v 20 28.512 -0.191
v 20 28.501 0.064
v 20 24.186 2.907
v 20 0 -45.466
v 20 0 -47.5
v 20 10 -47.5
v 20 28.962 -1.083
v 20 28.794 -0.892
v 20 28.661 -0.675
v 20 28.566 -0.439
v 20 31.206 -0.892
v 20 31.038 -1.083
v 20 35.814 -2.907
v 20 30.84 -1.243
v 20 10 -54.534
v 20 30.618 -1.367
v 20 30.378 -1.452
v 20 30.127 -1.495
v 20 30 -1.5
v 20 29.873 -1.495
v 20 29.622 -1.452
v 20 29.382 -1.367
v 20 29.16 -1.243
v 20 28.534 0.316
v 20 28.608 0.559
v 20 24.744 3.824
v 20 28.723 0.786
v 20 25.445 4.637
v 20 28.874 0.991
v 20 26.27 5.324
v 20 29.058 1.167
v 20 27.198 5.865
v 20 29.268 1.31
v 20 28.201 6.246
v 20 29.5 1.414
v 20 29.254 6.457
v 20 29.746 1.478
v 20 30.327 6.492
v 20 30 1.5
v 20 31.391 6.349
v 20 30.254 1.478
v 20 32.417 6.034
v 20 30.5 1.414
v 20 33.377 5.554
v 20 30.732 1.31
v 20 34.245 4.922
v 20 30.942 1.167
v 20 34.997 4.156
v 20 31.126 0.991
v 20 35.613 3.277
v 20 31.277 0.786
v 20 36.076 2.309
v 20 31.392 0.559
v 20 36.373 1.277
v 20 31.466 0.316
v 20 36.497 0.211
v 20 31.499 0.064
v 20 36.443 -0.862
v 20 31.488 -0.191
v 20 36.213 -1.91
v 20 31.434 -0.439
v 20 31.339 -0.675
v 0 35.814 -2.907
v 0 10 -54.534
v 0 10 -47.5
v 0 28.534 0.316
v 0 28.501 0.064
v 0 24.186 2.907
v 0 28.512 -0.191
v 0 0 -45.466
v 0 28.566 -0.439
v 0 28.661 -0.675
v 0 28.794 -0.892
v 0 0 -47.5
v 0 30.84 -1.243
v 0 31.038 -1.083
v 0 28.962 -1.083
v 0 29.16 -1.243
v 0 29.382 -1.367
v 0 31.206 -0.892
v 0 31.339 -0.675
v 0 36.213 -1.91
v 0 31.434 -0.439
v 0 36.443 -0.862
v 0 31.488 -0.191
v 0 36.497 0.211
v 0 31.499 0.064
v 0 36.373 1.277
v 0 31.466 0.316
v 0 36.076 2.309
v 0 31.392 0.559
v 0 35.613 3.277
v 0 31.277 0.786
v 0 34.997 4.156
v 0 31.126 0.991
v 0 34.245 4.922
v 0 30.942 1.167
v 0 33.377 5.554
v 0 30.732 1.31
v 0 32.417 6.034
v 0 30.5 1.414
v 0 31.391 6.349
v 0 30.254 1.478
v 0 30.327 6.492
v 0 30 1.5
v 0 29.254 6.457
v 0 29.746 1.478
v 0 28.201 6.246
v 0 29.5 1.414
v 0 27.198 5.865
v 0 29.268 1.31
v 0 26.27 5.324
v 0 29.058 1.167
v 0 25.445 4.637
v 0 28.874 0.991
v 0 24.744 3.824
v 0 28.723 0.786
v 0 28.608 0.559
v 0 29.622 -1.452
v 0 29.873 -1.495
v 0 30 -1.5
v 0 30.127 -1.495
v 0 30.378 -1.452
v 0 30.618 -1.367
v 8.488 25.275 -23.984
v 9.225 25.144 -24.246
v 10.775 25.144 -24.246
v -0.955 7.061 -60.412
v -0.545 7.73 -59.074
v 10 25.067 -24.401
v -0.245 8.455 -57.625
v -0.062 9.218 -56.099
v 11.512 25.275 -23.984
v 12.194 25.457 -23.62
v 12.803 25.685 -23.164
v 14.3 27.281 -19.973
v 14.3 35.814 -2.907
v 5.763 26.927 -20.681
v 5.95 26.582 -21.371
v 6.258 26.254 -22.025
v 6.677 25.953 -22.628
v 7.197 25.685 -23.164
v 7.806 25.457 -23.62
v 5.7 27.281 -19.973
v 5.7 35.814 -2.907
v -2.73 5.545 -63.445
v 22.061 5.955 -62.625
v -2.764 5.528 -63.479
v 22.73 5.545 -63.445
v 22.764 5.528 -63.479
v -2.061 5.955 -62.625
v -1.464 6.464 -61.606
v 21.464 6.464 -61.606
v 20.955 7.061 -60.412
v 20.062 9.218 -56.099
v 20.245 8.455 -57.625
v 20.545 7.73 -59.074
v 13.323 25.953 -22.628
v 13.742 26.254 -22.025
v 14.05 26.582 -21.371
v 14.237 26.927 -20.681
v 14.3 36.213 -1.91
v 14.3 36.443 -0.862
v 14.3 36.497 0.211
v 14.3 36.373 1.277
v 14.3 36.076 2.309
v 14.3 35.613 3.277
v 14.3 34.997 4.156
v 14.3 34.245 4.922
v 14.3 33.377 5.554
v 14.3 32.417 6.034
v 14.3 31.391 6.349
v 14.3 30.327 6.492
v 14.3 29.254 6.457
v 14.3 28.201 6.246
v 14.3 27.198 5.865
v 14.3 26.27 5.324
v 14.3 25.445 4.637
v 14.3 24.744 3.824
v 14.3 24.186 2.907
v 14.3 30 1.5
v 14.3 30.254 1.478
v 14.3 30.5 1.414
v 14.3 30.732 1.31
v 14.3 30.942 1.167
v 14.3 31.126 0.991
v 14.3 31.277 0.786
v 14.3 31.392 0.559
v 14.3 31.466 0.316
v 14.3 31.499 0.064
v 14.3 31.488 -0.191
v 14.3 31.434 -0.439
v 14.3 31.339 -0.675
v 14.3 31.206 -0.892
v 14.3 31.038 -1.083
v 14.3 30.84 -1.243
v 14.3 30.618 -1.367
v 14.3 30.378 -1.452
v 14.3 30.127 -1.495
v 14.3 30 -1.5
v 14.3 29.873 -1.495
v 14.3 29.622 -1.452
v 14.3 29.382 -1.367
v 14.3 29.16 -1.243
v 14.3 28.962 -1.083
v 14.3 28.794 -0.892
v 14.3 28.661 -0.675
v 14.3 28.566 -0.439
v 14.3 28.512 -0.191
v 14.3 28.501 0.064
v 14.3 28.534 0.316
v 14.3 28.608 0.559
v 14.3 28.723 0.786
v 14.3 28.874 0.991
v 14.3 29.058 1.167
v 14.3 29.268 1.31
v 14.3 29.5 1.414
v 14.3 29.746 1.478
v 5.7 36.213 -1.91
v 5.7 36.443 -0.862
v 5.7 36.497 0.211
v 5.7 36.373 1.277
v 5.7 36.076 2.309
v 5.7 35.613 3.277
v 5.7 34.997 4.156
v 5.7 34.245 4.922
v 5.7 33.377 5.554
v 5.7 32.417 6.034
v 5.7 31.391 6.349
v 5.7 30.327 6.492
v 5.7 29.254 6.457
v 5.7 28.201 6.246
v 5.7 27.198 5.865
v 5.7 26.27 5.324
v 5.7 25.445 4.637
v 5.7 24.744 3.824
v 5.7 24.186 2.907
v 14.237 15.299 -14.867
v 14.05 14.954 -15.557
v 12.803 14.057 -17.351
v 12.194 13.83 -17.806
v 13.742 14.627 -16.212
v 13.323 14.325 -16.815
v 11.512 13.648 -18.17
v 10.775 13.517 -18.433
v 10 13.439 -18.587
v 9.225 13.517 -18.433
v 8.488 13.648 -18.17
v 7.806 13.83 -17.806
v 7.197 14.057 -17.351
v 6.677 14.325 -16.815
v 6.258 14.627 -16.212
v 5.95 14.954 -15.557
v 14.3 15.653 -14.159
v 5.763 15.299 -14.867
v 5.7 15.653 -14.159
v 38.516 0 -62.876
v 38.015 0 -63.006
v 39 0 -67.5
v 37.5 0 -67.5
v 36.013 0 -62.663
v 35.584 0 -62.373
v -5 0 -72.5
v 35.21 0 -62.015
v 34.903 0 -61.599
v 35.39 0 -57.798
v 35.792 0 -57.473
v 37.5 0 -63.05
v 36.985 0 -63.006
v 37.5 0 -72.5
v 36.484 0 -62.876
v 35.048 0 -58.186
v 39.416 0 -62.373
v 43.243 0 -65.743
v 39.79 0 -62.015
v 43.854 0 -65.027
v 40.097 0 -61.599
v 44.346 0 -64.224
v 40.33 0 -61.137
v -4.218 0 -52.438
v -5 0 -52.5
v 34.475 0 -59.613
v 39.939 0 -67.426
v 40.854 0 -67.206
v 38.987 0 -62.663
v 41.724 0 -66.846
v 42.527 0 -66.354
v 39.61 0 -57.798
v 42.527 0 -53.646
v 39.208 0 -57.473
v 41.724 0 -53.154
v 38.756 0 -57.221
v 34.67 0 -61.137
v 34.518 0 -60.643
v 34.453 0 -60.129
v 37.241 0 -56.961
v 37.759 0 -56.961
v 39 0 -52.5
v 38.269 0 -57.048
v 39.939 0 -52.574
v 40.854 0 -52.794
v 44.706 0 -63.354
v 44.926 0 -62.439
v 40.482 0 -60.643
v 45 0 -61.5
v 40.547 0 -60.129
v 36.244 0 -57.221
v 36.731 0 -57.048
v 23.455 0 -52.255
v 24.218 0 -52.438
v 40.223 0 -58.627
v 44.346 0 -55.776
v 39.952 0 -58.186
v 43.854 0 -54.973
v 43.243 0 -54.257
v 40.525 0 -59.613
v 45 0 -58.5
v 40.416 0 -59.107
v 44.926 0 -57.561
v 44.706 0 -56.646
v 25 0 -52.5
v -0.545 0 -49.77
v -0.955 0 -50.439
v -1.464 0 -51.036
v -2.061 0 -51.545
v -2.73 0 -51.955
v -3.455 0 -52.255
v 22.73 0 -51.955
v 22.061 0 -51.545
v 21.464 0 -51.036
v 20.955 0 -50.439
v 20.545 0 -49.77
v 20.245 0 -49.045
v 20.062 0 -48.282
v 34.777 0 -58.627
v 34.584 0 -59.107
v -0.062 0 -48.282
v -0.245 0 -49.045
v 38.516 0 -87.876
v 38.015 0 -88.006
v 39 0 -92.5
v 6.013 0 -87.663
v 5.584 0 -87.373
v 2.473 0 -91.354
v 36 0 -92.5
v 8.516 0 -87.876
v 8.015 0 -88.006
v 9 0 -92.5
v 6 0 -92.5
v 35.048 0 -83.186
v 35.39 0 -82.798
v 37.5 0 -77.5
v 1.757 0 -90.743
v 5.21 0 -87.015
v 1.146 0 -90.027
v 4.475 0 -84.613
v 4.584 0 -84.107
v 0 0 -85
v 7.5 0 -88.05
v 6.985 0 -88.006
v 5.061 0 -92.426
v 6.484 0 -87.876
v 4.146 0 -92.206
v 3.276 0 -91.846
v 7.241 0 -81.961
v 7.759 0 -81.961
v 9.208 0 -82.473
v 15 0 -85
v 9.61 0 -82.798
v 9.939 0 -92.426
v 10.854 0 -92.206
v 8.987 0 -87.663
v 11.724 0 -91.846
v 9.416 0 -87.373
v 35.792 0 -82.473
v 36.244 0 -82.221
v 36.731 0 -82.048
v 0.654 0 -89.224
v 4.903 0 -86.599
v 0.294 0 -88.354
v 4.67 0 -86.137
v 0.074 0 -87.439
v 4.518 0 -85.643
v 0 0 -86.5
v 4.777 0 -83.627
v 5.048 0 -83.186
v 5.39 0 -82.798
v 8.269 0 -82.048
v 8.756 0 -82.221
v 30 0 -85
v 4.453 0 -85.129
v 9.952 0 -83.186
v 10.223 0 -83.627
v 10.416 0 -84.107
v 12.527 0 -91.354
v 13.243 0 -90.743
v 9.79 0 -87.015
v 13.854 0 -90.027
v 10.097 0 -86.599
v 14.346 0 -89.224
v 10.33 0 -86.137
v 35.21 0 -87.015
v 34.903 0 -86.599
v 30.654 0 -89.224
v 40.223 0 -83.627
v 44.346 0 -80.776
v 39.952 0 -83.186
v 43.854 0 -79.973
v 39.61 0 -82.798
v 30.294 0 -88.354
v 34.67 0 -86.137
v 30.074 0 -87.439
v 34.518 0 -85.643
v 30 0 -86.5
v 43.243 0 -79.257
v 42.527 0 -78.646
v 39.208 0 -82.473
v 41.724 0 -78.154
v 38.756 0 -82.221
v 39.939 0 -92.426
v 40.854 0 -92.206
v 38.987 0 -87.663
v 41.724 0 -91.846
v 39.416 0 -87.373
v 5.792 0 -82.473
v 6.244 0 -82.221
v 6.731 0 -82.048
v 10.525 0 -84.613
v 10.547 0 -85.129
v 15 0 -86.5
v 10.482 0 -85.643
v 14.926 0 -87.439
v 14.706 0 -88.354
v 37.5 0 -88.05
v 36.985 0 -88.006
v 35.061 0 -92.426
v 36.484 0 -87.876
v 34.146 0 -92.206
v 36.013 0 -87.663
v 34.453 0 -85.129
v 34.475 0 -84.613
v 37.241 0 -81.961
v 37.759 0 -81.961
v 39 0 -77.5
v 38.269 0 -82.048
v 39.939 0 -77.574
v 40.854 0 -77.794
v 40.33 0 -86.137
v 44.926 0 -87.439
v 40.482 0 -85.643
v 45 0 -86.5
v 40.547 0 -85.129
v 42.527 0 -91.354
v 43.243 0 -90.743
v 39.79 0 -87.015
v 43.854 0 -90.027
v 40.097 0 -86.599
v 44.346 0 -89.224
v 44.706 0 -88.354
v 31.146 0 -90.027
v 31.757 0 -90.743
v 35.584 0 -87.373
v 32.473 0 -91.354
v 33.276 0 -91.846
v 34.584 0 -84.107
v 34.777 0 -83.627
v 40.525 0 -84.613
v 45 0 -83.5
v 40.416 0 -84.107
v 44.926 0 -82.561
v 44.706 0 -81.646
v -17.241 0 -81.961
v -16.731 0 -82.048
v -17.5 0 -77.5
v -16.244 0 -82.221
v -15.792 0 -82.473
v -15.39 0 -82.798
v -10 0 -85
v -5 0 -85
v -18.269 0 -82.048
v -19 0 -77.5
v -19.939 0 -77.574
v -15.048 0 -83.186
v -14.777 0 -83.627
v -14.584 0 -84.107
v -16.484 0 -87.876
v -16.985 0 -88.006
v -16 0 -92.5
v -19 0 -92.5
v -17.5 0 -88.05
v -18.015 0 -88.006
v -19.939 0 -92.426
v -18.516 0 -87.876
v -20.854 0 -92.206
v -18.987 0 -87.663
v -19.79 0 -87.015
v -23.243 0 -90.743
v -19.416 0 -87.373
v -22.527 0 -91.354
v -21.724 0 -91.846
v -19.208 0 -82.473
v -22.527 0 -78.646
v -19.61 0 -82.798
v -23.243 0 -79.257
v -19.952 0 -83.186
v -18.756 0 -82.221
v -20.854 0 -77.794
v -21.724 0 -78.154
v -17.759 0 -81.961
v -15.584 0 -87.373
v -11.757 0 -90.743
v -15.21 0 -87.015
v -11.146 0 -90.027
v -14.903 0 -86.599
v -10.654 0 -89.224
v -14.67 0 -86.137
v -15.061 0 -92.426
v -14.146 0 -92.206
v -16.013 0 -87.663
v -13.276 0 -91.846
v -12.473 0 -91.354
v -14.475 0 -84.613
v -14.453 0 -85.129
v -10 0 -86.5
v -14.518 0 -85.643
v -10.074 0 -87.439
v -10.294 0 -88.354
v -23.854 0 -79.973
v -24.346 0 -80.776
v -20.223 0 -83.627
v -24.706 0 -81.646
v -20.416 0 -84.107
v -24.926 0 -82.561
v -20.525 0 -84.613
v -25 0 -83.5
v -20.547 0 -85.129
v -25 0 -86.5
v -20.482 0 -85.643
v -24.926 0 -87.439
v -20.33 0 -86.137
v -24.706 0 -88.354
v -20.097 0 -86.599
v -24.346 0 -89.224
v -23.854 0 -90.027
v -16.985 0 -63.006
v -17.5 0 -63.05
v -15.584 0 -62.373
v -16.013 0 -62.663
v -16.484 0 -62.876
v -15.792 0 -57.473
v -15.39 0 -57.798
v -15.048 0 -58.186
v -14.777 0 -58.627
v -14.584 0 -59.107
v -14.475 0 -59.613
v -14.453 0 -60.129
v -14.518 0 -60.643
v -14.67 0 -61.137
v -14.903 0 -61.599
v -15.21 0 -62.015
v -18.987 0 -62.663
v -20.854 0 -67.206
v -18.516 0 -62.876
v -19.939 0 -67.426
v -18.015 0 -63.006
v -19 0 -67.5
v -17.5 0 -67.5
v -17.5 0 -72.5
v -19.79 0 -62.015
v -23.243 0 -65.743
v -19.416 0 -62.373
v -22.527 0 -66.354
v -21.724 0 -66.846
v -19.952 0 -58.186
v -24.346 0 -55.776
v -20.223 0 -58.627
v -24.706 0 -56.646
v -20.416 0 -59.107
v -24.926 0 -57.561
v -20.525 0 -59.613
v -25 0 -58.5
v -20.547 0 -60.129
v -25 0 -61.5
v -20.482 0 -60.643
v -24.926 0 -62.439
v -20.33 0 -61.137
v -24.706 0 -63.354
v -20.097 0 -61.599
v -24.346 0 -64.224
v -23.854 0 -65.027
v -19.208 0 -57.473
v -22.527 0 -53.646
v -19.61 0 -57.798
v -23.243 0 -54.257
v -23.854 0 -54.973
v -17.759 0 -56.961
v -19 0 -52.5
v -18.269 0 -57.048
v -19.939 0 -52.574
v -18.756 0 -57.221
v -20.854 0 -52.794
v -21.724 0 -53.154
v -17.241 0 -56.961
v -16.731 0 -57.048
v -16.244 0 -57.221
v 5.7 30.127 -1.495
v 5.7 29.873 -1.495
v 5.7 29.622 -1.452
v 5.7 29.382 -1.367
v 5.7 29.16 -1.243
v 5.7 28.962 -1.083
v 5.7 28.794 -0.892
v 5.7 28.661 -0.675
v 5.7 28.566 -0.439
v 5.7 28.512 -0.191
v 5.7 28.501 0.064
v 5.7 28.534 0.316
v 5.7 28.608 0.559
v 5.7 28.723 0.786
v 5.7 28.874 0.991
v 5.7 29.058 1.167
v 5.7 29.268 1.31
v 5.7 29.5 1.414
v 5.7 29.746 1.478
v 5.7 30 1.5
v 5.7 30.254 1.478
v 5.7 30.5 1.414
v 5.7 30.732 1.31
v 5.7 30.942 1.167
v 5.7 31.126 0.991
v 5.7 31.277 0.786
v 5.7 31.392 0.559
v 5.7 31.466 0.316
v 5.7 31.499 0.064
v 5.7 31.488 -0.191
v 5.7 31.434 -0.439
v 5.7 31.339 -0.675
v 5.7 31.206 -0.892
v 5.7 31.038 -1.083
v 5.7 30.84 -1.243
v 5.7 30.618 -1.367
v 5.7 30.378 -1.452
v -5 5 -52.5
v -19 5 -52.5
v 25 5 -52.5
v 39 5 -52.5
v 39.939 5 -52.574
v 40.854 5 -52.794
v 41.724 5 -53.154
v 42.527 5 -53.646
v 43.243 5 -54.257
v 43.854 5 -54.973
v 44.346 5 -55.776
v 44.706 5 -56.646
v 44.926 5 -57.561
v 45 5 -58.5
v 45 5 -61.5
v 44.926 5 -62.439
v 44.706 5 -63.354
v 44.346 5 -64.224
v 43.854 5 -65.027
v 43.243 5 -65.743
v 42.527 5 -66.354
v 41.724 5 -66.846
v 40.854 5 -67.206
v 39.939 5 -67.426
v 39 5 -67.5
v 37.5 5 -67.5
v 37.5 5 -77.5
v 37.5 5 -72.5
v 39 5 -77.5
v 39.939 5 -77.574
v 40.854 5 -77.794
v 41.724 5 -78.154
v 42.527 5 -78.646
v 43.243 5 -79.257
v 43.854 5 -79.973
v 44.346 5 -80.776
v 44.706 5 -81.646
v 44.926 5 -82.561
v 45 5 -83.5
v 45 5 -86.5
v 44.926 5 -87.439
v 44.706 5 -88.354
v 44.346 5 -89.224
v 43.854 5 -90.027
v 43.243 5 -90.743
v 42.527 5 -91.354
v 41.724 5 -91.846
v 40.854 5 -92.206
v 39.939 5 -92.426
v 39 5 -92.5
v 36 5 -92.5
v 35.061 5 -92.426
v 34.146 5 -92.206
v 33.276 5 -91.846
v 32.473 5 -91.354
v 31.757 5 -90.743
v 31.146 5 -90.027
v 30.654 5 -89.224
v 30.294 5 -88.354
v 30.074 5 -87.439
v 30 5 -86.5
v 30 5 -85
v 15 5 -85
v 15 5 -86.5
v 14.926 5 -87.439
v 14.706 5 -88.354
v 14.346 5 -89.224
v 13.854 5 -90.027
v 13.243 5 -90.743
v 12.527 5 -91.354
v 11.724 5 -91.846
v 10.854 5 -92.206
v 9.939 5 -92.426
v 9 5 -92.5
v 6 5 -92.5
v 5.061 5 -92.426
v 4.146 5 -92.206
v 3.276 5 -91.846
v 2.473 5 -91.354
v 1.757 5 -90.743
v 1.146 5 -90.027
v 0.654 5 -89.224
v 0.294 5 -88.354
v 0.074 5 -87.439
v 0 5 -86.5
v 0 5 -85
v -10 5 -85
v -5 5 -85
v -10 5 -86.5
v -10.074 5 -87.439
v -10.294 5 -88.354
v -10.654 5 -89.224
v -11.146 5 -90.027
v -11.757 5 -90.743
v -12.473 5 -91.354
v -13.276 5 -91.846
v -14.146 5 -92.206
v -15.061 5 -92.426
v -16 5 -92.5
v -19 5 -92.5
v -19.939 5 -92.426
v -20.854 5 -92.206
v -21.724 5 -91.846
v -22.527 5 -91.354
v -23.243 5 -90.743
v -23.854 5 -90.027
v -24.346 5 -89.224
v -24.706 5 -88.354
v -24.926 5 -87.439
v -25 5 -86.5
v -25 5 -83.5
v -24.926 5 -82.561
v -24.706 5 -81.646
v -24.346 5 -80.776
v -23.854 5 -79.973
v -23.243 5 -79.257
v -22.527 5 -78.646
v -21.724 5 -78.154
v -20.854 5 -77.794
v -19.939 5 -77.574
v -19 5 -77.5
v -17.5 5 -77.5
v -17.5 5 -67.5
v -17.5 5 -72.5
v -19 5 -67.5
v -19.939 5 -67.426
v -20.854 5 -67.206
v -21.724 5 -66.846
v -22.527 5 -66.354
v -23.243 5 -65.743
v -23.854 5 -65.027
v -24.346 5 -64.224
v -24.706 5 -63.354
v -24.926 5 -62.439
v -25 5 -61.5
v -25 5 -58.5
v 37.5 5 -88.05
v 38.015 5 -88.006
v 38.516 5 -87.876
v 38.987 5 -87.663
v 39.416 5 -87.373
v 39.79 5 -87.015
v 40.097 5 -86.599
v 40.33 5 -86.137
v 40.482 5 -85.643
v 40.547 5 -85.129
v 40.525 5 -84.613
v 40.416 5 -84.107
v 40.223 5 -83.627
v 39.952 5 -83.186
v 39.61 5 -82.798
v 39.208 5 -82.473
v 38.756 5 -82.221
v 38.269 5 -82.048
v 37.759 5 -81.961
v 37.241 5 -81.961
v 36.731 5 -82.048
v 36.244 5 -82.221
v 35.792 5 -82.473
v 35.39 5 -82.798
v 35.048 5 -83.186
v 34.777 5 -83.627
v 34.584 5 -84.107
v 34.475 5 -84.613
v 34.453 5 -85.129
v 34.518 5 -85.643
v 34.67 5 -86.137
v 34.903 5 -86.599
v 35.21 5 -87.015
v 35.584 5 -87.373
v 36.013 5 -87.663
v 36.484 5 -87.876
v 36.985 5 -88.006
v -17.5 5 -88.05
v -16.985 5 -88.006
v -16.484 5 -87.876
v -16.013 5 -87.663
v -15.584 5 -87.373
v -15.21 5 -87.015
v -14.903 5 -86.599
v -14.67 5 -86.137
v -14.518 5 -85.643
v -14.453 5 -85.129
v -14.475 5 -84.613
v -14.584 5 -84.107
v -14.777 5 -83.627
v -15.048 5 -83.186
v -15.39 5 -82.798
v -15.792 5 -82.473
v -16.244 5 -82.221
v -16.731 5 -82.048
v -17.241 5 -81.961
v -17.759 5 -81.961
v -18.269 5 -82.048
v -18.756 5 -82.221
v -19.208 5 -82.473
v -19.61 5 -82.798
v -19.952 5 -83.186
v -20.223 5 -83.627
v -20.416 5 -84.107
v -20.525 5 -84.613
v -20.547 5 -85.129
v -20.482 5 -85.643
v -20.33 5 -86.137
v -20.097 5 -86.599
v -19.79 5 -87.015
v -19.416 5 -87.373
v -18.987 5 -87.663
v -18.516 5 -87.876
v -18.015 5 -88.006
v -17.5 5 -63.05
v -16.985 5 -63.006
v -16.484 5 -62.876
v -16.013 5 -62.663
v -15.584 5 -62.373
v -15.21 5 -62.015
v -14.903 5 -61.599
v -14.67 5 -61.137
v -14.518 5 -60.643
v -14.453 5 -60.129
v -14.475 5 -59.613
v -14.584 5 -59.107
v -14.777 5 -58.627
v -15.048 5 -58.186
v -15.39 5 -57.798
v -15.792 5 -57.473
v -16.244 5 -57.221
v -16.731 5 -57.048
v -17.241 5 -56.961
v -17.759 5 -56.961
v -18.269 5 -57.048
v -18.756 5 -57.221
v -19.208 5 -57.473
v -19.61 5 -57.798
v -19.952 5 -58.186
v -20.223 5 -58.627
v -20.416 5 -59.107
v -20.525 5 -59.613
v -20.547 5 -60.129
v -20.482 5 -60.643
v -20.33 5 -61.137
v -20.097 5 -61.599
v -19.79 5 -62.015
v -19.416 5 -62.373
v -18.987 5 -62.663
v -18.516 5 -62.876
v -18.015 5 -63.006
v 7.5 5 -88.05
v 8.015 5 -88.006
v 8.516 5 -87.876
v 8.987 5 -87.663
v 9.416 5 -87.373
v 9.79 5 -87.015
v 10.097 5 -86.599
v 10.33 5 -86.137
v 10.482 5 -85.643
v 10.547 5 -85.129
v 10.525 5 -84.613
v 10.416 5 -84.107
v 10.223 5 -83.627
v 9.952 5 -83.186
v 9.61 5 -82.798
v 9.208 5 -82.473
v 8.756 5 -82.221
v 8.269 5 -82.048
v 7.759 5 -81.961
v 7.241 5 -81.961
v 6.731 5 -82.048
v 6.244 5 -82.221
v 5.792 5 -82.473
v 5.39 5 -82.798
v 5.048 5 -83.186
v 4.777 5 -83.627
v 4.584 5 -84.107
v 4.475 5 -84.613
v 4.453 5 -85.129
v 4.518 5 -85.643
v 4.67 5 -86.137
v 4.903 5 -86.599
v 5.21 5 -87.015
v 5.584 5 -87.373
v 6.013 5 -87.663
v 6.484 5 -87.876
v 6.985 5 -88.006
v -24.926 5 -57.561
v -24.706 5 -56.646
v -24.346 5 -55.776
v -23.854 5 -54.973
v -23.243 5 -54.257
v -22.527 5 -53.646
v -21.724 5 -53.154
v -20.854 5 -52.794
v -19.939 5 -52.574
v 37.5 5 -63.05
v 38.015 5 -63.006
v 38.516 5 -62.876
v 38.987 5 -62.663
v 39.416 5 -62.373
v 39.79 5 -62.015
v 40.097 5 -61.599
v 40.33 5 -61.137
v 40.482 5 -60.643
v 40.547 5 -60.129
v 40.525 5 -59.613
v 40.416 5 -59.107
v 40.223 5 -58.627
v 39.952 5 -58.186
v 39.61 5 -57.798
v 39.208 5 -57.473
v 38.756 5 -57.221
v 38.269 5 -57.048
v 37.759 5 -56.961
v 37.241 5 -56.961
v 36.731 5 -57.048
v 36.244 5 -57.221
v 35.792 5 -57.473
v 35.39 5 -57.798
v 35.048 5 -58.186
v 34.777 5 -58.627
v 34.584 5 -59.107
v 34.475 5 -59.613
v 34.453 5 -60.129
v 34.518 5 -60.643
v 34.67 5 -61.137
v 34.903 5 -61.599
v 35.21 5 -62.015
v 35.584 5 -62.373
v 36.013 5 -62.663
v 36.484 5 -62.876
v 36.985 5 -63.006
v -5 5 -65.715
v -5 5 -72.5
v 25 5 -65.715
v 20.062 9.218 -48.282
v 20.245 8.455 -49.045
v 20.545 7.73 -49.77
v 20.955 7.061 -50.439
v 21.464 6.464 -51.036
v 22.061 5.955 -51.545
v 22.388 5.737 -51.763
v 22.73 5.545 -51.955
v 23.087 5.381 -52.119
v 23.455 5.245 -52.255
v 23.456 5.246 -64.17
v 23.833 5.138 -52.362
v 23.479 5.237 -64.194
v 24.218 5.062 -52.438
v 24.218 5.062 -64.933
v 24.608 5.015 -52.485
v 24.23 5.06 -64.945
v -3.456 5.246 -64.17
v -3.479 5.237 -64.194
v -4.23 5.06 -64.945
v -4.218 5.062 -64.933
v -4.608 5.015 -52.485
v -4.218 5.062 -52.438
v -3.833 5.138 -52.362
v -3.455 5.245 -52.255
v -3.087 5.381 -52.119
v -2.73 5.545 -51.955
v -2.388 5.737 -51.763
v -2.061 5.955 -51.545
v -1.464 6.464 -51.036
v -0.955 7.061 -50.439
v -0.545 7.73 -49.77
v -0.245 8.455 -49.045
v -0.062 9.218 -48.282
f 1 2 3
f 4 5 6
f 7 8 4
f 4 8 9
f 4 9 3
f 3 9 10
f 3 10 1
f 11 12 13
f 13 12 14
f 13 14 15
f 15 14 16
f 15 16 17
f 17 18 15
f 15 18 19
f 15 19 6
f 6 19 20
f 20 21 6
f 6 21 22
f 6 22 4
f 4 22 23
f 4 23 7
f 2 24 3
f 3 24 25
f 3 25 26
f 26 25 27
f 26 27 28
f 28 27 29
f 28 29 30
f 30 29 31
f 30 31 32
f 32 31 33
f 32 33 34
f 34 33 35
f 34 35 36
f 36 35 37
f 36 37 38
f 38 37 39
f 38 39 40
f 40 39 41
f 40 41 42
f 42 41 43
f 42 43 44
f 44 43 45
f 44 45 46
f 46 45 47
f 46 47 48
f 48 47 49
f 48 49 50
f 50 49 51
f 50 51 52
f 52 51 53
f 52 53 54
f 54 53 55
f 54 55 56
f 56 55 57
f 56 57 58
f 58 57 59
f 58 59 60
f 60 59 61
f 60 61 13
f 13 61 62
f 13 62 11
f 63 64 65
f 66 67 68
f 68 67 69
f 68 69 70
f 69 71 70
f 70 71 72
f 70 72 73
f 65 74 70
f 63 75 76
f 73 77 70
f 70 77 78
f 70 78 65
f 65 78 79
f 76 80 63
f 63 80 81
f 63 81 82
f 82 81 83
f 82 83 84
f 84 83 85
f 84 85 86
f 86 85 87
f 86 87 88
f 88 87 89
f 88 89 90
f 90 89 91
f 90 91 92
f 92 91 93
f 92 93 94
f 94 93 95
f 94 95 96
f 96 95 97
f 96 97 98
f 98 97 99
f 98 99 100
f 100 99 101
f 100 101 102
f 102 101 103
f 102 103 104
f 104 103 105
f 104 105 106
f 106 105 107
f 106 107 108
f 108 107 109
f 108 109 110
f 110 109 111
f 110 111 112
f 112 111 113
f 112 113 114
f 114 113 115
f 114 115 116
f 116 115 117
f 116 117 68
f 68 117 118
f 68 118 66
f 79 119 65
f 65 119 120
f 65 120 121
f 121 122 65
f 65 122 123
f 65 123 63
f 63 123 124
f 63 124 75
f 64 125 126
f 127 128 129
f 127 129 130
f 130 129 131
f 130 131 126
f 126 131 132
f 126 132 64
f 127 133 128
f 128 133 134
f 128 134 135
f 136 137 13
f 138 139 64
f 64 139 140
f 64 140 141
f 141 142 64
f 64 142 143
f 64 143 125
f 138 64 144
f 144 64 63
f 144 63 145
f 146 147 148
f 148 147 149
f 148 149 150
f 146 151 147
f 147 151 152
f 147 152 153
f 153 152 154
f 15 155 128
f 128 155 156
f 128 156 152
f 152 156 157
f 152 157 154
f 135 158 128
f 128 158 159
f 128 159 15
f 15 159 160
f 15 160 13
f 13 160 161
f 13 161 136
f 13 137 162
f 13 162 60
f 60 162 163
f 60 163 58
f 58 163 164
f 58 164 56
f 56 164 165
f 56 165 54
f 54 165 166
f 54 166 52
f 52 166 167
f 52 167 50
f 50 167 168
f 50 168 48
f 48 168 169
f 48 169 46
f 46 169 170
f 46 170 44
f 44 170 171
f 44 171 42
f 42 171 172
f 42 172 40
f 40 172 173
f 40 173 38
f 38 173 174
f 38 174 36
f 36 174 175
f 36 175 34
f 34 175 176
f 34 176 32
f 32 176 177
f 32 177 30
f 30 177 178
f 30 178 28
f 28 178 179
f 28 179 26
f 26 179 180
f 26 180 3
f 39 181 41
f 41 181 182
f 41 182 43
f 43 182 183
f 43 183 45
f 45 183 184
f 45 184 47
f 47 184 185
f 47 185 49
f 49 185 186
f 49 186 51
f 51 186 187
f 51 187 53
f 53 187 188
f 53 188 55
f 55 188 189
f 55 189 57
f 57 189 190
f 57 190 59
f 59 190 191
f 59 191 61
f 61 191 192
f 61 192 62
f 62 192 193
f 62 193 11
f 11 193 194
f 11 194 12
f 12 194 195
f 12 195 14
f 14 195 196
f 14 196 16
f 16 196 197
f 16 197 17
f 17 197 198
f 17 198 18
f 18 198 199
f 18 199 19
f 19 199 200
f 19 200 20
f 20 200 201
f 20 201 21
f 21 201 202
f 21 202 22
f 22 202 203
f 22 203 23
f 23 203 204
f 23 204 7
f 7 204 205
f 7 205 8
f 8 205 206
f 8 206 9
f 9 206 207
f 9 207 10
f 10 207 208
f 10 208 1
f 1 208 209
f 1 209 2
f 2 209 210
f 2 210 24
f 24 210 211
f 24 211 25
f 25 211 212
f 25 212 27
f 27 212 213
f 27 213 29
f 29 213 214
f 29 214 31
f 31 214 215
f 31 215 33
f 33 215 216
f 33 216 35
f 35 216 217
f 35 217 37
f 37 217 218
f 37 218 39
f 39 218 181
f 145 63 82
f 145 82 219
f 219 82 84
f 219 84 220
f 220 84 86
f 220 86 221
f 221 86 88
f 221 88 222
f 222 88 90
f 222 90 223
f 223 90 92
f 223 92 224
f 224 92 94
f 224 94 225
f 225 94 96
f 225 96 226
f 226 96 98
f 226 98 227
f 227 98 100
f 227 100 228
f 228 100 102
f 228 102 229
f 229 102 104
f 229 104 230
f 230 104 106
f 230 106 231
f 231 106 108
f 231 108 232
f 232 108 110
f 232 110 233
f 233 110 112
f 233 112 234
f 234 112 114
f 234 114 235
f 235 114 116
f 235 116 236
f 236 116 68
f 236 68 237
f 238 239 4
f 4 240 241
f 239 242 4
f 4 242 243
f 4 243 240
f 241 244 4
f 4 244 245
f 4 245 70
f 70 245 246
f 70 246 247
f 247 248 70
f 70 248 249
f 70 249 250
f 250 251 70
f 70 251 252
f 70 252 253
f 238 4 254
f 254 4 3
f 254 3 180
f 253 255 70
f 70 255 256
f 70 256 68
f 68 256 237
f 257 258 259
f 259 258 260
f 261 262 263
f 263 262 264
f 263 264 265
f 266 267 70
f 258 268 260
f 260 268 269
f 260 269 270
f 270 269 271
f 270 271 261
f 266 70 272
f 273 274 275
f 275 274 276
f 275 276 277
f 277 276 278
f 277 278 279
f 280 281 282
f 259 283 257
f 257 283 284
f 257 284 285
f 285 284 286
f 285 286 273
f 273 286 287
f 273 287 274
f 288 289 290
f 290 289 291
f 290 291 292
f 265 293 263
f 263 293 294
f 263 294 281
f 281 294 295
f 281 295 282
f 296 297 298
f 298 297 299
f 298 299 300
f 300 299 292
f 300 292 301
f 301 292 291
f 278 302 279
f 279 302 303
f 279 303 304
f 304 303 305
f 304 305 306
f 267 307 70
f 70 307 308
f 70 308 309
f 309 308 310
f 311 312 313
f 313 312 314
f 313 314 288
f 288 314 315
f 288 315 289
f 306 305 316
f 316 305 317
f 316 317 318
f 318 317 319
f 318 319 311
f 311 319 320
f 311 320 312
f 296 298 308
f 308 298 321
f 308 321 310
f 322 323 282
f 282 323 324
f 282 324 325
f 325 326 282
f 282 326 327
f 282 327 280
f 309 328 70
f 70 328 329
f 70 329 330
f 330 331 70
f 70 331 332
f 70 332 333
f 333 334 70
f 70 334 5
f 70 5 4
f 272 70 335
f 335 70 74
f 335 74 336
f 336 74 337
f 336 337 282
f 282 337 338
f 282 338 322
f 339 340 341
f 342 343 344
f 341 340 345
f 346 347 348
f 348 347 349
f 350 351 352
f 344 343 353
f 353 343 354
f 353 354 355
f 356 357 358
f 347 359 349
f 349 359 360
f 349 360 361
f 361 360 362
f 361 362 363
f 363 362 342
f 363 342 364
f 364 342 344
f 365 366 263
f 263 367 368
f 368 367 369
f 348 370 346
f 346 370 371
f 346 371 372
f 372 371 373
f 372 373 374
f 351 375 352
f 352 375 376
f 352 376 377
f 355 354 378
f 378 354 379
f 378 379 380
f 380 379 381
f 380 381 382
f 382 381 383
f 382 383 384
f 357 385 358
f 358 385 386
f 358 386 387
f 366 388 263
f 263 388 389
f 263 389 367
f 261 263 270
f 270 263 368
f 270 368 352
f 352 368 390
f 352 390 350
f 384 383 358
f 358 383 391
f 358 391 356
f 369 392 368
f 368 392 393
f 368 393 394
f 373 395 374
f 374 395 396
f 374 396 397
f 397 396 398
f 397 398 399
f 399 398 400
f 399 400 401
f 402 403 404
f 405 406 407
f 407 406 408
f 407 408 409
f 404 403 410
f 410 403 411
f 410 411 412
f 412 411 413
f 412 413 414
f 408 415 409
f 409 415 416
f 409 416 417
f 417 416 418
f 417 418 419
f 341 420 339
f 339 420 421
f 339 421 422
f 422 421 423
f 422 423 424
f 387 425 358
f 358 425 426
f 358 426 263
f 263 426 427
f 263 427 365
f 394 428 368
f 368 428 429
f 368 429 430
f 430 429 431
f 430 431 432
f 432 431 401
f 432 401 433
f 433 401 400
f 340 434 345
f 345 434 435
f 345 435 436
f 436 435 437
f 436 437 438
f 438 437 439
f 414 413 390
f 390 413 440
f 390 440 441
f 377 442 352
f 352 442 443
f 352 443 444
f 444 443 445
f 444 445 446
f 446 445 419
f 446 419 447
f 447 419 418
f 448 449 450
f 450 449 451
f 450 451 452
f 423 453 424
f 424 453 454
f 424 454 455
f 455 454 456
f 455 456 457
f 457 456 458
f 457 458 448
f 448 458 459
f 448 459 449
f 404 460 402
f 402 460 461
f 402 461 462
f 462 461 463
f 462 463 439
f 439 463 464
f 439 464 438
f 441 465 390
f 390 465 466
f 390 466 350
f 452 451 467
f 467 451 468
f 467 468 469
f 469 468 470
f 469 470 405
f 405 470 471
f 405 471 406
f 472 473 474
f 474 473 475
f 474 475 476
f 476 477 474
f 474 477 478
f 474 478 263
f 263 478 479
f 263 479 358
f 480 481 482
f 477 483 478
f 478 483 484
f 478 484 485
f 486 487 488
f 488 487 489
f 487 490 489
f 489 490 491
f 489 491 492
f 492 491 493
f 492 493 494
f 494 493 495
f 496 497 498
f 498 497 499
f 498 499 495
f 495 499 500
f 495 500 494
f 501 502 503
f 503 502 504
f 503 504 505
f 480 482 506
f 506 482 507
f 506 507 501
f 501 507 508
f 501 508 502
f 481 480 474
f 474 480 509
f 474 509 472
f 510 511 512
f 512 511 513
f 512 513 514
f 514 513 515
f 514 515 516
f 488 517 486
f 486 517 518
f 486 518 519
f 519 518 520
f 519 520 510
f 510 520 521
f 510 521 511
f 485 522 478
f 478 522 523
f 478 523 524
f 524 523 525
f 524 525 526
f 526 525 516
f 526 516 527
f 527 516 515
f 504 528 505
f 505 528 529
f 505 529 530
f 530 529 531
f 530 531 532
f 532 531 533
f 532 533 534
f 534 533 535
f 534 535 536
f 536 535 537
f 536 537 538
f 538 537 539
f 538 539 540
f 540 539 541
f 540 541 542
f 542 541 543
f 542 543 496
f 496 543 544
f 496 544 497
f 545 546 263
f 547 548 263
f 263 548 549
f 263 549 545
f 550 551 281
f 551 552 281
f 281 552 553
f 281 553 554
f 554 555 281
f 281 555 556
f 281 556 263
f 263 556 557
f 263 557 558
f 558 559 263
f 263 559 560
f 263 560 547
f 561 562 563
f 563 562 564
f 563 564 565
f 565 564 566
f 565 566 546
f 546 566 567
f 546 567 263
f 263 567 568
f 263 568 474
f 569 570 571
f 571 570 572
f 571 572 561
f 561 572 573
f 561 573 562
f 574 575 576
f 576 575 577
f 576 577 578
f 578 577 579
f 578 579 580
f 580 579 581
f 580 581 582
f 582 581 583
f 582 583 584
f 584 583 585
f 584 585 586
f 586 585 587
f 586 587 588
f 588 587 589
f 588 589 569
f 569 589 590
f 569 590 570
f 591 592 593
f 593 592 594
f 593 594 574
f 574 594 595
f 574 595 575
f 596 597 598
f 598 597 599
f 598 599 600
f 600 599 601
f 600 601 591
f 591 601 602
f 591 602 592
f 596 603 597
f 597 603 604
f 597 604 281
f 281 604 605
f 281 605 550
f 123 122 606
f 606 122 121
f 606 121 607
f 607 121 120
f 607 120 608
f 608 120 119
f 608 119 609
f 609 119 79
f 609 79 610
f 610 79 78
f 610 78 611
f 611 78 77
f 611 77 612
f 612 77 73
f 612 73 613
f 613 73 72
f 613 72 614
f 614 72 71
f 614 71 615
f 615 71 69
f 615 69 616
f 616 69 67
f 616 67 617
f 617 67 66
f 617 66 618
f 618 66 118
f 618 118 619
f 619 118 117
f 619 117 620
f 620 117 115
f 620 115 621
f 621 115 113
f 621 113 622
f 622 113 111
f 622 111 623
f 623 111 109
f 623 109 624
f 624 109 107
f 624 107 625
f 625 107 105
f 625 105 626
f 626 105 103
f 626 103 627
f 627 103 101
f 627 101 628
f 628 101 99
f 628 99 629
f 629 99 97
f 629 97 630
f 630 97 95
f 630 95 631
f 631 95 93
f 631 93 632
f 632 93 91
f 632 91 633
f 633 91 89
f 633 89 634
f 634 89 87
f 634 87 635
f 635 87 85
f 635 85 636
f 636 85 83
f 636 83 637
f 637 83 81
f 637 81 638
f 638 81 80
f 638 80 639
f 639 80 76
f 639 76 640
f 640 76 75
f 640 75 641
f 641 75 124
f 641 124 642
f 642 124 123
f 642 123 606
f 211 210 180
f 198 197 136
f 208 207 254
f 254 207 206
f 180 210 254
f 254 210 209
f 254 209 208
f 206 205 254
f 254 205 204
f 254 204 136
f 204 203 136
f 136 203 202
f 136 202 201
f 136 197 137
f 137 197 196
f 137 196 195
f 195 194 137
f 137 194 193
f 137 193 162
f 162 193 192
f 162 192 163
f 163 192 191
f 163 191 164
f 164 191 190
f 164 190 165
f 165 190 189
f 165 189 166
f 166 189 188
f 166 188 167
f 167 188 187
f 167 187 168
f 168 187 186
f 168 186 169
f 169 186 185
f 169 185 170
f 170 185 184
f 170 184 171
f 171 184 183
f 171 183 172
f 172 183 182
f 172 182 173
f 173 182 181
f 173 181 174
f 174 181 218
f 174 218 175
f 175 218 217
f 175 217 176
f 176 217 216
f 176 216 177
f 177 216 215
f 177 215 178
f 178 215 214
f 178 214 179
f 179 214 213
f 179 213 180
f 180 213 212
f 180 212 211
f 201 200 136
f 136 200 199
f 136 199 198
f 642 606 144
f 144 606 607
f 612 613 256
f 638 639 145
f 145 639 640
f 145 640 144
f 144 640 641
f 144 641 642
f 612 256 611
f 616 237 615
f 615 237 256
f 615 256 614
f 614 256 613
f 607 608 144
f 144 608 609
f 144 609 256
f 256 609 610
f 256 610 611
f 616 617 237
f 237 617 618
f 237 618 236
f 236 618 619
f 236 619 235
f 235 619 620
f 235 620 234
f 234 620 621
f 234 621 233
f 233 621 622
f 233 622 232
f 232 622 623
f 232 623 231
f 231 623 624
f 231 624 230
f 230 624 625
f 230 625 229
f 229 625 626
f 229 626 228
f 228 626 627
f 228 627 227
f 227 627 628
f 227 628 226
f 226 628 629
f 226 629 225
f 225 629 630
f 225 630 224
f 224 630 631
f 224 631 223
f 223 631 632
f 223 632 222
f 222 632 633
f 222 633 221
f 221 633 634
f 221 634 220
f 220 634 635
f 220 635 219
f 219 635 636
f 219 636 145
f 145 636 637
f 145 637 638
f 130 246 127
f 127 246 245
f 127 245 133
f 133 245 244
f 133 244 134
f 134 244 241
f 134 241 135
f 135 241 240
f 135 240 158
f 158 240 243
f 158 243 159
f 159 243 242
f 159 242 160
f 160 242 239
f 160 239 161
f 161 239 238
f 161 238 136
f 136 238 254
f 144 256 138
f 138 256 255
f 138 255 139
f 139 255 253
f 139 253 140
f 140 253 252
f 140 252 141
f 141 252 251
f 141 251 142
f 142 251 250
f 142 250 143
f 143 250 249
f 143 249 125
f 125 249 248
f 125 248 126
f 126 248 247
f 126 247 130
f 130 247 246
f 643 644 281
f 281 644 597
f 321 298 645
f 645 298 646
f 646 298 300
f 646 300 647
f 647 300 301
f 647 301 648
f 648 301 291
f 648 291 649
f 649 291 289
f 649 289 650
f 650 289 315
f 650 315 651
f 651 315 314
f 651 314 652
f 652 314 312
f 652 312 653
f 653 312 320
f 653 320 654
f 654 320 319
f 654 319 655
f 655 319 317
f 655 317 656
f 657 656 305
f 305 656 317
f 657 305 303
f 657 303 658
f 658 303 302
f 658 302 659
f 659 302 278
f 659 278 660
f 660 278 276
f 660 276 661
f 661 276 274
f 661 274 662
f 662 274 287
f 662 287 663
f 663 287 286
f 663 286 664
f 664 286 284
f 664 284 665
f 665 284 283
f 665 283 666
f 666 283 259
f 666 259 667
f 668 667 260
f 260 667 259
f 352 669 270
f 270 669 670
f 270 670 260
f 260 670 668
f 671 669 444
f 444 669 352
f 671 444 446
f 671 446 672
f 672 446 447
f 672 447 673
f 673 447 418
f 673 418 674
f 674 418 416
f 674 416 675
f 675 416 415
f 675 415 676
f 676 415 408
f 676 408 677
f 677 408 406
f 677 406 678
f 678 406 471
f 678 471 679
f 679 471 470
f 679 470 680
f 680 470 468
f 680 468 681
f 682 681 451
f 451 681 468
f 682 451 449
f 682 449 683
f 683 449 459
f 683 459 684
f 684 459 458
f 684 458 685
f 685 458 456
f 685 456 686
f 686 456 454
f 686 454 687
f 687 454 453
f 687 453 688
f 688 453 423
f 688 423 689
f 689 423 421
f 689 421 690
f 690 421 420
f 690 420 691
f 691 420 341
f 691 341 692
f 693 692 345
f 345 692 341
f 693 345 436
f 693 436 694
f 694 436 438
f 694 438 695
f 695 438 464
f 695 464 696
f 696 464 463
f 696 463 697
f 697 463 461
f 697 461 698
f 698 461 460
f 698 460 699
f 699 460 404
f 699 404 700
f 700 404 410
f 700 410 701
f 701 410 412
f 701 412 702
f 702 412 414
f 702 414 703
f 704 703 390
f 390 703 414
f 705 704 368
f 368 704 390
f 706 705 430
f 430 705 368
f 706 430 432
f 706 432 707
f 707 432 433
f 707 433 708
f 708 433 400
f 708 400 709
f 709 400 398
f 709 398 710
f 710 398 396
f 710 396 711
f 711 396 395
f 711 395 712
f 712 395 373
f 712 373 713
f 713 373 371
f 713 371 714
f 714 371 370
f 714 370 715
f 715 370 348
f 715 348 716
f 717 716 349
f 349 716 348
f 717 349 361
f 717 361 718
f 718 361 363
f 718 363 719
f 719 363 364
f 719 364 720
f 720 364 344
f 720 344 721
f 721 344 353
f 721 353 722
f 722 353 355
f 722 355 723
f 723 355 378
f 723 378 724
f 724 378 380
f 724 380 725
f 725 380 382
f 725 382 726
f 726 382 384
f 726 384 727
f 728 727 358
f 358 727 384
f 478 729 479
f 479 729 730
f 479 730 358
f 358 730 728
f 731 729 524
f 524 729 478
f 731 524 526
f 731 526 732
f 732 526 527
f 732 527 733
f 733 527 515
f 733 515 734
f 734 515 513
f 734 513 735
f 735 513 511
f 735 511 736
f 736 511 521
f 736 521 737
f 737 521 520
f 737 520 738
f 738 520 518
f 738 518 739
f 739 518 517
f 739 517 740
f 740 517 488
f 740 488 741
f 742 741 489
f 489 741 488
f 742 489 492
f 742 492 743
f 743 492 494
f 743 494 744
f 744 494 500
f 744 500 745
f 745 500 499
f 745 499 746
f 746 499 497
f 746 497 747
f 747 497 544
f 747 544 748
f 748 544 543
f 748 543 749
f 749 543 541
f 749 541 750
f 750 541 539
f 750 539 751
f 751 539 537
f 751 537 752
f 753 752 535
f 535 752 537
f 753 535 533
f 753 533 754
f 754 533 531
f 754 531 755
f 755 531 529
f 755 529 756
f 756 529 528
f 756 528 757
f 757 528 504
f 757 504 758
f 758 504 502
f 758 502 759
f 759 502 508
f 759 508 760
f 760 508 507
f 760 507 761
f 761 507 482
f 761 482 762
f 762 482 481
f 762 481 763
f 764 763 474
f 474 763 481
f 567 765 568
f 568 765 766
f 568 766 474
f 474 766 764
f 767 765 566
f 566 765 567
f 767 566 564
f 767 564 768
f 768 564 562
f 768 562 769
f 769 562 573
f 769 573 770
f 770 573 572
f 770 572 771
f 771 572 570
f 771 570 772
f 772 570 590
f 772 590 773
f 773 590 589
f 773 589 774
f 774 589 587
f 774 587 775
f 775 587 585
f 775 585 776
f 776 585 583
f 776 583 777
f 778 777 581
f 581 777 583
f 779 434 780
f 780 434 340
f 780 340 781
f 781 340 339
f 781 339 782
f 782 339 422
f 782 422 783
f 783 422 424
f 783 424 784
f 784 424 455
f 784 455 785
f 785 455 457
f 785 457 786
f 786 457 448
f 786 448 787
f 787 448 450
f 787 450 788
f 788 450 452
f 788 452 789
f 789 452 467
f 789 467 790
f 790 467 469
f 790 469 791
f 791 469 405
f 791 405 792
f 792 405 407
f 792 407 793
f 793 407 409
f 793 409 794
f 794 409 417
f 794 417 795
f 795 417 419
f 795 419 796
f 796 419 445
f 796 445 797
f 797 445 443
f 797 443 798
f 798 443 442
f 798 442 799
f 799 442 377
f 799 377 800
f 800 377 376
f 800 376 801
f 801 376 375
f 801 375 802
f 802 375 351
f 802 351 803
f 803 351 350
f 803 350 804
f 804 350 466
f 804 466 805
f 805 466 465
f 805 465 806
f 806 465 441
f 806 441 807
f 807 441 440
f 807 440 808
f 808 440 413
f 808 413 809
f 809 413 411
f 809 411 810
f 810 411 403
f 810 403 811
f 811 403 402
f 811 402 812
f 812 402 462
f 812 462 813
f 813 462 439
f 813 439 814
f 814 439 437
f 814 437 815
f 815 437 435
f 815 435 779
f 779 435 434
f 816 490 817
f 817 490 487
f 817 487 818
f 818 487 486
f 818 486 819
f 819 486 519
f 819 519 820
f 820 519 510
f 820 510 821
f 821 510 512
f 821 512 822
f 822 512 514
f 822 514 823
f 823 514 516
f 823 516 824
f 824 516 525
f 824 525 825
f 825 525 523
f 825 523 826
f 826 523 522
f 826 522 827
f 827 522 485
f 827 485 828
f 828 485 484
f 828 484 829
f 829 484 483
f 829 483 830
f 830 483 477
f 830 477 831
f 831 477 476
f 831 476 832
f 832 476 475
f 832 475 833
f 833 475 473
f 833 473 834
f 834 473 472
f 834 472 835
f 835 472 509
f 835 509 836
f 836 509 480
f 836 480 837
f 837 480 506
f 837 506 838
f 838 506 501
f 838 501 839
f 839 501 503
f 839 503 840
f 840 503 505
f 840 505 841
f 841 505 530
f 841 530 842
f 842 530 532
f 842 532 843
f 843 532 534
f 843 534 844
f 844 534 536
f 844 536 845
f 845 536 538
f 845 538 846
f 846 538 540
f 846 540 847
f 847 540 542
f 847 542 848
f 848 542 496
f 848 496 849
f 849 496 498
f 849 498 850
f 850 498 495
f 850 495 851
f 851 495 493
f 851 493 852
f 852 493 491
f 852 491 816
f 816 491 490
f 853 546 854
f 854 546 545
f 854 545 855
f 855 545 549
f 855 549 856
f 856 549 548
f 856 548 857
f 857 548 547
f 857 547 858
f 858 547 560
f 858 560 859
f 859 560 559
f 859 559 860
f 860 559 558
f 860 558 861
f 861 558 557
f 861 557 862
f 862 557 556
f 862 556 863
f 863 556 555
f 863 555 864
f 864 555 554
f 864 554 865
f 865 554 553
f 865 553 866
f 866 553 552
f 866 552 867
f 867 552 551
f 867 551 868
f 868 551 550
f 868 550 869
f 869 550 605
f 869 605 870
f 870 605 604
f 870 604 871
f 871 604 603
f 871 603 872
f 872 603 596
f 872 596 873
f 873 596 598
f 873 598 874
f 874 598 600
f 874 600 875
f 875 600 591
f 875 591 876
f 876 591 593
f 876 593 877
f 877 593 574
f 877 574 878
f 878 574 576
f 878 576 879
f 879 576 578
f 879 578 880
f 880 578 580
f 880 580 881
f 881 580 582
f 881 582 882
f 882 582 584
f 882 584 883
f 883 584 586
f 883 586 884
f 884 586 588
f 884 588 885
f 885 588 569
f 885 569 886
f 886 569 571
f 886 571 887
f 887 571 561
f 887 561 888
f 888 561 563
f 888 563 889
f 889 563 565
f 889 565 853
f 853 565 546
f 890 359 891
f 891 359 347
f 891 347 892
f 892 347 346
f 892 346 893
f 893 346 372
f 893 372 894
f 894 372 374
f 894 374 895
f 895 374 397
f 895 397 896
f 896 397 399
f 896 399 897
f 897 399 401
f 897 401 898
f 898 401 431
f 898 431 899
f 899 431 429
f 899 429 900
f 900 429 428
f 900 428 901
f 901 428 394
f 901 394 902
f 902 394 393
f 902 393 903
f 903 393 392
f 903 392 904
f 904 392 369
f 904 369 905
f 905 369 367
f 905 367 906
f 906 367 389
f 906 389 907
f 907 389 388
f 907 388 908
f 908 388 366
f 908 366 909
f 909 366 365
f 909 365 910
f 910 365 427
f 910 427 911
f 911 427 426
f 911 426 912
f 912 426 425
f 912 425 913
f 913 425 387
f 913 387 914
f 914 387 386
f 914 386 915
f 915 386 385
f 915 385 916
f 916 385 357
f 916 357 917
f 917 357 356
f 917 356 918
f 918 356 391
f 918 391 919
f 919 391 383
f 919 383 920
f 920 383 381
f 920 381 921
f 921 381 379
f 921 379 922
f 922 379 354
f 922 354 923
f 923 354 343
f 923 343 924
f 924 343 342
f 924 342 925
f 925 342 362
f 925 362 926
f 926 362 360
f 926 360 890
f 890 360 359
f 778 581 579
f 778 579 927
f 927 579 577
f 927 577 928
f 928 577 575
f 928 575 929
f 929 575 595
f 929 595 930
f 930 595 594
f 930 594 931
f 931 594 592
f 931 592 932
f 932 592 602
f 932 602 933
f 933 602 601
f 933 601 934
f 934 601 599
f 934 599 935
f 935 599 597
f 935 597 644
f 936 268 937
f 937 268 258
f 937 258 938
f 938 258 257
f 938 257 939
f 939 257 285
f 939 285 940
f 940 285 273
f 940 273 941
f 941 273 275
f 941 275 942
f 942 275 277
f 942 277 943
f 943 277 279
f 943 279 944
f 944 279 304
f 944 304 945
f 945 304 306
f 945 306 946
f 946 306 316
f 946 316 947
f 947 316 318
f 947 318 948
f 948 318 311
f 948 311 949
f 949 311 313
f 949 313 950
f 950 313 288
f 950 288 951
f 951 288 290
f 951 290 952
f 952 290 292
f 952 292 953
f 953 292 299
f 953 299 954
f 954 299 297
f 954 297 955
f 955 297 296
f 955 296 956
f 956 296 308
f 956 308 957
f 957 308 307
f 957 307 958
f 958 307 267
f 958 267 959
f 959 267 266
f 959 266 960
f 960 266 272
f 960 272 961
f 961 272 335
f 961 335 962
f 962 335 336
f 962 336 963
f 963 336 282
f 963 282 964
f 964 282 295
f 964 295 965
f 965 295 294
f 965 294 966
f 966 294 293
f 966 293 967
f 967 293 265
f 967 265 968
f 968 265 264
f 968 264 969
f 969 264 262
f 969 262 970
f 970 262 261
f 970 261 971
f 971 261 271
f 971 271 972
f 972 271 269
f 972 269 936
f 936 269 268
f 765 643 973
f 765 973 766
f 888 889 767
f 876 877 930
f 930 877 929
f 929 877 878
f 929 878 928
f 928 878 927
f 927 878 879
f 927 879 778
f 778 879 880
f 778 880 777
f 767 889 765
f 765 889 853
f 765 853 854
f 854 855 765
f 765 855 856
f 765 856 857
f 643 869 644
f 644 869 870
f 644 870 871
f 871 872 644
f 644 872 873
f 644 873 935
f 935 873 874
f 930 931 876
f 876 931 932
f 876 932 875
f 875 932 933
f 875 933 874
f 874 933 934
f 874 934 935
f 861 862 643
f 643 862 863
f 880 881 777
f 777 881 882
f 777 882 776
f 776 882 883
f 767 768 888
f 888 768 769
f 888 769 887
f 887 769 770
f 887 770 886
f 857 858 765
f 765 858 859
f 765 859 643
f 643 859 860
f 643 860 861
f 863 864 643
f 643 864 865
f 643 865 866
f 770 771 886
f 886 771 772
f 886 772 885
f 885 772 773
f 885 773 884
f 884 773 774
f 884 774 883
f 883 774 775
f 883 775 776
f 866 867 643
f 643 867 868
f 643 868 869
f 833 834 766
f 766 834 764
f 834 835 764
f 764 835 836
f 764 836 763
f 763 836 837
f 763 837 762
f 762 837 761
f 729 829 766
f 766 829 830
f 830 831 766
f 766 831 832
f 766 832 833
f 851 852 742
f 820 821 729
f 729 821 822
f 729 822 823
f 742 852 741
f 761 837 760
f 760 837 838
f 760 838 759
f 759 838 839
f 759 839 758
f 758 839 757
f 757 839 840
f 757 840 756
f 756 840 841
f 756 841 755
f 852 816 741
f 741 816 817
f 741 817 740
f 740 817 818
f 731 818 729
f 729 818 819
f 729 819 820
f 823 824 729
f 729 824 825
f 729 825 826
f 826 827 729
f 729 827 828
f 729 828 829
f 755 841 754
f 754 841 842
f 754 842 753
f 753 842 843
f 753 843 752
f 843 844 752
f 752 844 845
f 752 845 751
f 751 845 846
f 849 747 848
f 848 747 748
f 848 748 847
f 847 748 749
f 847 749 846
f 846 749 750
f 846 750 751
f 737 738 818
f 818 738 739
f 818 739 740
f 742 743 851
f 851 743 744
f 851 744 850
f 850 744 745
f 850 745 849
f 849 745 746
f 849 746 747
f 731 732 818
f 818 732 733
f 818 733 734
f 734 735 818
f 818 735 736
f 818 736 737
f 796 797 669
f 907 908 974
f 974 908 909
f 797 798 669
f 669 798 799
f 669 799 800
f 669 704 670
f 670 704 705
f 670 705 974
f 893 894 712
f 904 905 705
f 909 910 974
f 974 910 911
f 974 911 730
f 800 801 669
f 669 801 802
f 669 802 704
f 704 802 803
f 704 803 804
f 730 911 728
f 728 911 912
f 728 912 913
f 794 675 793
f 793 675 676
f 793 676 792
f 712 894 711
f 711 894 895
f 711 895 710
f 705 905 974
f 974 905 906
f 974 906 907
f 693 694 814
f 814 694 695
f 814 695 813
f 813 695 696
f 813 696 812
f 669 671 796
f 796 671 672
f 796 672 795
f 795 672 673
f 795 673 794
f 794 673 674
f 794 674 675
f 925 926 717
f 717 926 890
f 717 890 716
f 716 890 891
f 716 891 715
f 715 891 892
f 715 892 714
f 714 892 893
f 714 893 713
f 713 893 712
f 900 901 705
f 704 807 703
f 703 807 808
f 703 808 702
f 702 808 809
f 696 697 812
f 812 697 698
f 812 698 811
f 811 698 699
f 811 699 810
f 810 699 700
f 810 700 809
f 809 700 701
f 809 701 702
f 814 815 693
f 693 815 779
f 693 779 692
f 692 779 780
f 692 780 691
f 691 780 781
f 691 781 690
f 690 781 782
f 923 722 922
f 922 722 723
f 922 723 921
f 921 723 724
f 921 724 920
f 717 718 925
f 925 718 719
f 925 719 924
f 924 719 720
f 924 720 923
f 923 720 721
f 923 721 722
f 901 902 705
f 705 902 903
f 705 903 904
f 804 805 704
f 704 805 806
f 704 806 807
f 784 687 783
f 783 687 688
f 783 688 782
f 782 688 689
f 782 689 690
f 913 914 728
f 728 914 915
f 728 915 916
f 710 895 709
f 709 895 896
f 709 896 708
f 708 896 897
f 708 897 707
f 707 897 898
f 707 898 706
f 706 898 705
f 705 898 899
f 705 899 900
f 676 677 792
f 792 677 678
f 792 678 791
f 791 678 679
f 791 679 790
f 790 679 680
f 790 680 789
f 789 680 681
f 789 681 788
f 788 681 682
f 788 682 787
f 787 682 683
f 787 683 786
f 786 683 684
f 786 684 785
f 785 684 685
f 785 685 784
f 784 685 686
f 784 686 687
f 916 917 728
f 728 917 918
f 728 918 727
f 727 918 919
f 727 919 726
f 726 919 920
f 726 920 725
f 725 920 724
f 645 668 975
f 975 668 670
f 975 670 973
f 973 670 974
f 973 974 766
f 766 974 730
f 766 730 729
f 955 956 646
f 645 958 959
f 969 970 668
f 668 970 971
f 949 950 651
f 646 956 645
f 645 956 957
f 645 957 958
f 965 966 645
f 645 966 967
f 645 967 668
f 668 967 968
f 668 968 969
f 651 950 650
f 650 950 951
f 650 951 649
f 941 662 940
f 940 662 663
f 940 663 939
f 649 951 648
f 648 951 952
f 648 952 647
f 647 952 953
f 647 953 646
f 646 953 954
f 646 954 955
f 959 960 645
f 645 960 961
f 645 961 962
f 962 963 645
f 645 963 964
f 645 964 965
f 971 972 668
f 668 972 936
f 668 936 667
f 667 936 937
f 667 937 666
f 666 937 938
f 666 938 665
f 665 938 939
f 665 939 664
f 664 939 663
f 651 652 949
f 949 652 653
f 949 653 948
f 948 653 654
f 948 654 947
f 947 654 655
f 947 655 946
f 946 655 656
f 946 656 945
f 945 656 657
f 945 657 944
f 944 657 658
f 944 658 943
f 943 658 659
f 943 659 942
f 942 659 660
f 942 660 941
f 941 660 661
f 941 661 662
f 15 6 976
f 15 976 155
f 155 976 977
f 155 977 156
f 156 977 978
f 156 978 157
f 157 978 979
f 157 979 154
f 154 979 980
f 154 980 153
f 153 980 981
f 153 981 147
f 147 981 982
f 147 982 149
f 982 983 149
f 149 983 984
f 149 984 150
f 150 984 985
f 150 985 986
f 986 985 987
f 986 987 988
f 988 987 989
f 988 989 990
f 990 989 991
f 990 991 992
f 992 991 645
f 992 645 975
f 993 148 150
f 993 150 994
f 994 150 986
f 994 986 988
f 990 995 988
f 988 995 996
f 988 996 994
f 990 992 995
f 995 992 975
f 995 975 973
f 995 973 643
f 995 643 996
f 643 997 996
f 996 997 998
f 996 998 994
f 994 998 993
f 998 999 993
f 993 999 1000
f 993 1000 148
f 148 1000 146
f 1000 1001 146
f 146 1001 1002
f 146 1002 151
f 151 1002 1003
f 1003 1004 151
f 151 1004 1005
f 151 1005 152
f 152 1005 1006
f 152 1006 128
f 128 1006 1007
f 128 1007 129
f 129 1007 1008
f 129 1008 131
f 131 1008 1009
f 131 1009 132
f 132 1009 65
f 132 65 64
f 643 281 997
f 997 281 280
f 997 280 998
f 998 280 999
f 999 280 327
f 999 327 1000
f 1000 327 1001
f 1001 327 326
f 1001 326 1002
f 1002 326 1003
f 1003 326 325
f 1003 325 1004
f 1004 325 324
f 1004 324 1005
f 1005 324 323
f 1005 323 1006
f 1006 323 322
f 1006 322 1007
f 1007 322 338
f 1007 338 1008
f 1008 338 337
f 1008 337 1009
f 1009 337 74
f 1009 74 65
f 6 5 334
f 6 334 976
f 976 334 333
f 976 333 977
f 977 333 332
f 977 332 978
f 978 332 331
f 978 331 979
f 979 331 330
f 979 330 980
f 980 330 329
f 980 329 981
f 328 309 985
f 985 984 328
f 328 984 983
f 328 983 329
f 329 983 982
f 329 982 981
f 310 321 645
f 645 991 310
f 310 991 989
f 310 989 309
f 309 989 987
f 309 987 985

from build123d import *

# Parameters (mm, degrees)
SKETCH1_R           = 1.5
BOSS_EXTRUDE1_DEPTH = 20
SKETCH2_W           = 8.6
SKETCH2_H           = 36.312939462
CUT_EXTRUDE1_DEPTH  = 20
FILLET2_R           = 5
SKETCH3_R           = 3.05
BOSS_EXTRUDE3_DEPTH = 5
FILLET3_R           = 5
FILLET4_R           = 5


with BuildPart() as part:
    # Sketch1 → Boss-Extrude1 (new body)
    with BuildSketch(Plane(origin=(0, 0, 0), x_dir=(0, 0, -1), z_dir=(1, 0, 0))):
        with BuildLine():
            Line((2.906888371, 35.813776741), (74.534441854, 0))
            Line((74.534441854, 0), (45.465558146, 0))
            Line((45.465558146, 0), (-2.906888371, 24.186223259))
            ThreePointArc((-2.906888371, 24.186223259), (-5.813776741, 32.906888371), (2.906888371, 35.813776741))
        make_face()
        with Locations((0, 30)):
            Circle(SKETCH1_R, mode=Mode.SUBTRACT)
    extrude(amount=BOSS_EXTRUDE1_DEPTH)

    # Sketch2 → Cut-Extrude1 (cut)
    with BuildSketch(Plane(origin=(0, 29.813776741, -14.906888371), x_dir=(1, 0, 0), z_dir=(0, 0.894427190999916, -0.4472135954999577))):
        with Locations((10, -7.492276671)):
            Rectangle(SKETCH2_W, SKETCH2_H)
    extrude(amount=-CUT_EXTRUDE1_DEPTH, mode=Mode.SUBTRACT)

    # Fillet2
    # the kernel refuses this fillet: 5 mm, written as the material it adds along each edge
    with BuildSketch(Plane(origin=(5.7, 25.04460462, -24.445232613), x_dir=(1, 0, 0), z_dir=(0, -0.894427190999916, 0.4472135954999577)), Plane(origin=(14.3, 25.04460462, -24.445232613), x_dir=(0, 0.44721359549995776, 0.894427190999916), z_dir=(0, -0.894427190999916, 0.4472135954999577))) as fillet2_piece_1:
        with BuildLine():
            CenterArc((FILLET2_R, FILLET2_R), FILLET2_R, 180, 90)
            Line((0, FILLET2_R), (0, 0))
            Line((0, 0), (FILLET2_R, 0))
        make_face()
    extrude(amount=13)

    # Sketch3 → Boss-Extrude3 (add)
    with BuildSketch(Plane.XZ):
        with BuildLine():
            Line((-19, -92.5), (-16, -92.5))
            ThreePointArc((-16, -92.5), (-11.757359313, -90.742640687), (-10, -86.5))
            Line((-10, -86.5), (-10, -85))
            Line((-10, -85), (0, -85))
            Line((0, -85), (0, -86.5))
            ThreePointArc((0, -86.5), (1.757359313, -90.742640687), (6, -92.5))
            Line((6, -92.5), (9, -92.5))
            ThreePointArc((9, -92.5), (13.242640687, -90.742640687), (15, -86.5))
            Line((15, -86.5), (15, -85))
            Line((15, -85), (30, -85))
            Line((30, -85), (30, -86.5))
            ThreePointArc((30, -86.5), (31.757359313, -90.742640687), (36, -92.5))
            Line((36, -92.5), (39, -92.5))
            ThreePointArc((39, -92.5), (43.242640687, -90.742640687), (45, -86.5))
            Line((45, -86.5), (45, -83.5))
            ThreePointArc((45, -83.5), (43.242640687, -79.257359313), (39, -77.5))
            Line((39, -77.5), (37.5, -77.5))
            Line((37.5, -77.5), (37.5, -67.5))
            Line((37.5, -67.5), (39, -67.5))
            ThreePointArc((39, -67.5), (43.242640687, -65.742640687), (45, -61.5))
            Line((45, -61.5), (45, -58.5))
            ThreePointArc((45, -58.5), (43.242640687, -54.257359313), (39, -52.5))
            Line((39, -52.5), (37.5, -52.5))
            Line((37.5, -52.5), (-17.5, -52.5))
            Line((-17.5, -52.5), (-19, -52.5))
            ThreePointArc((-19, -52.5), (-23.242640687, -54.257359313), (-25, -58.5))
            Line((-25, -58.5), (-25, -61.5))
            ThreePointArc((-25, -61.5), (-23.242640687, -65.742640687), (-19, -67.5))
            Line((-19, -67.5), (-17.5, -67.5))
            Line((-17.5, -67.5), (-17.5, -77.5))
            Line((-17.5, -77.5), (-19, -77.5))
            ThreePointArc((-19, -77.5), (-23.242640687, -79.257359313), (-25, -83.5))
            Line((-25, -83.5), (-25, -86.5))
            ThreePointArc((-25, -86.5), (-23.242640687, -90.742640687), (-19, -92.5))
        make_face()
        with Locations(Location((-17.5, -85, 0), (0, 0, 270))):
            Circle(SKETCH3_R, mode=Mode.SUBTRACT)
        with Locations(Location((7.5, -85, 0), (0, 0, 270))):
            Circle(SKETCH3_R, mode=Mode.SUBTRACT)
        with Locations(Location((37.5, -85, 0), (0, 0, 270))):
            Circle(SKETCH3_R, mode=Mode.SUBTRACT)
        with Locations(Location((-17.5, -60, 0), (0, 0, 270))):
            Circle(SKETCH3_R, mode=Mode.SUBTRACT)
        with Locations(Location((37.5, -60, 0), (0, 0, 270))):
            Circle(SKETCH3_R, mode=Mode.SUBTRACT)
    extrude(amount=-BOSS_EXTRUDE3_DEPTH)

    # Fillet3
    fillet3_edges = [part.edges().sort_by_distance(p)[0] for p in [
        (10, 5, -64.534441854),
        (20, 5, -58.517220927),
        (0, 5, -58.517220927),
    ]]
    fillet(fillet3_edges, radius=FILLET3_R)

    # Fillet4
    fillet4_edges = [part.edges().sort_by_distance(p)[0] for p in [
        (0, 5, -52.5),
        (20, 5, -52.5),
    ]]
    fillet(fillet4_edges, radius=FILLET4_R)


solid = part.part
